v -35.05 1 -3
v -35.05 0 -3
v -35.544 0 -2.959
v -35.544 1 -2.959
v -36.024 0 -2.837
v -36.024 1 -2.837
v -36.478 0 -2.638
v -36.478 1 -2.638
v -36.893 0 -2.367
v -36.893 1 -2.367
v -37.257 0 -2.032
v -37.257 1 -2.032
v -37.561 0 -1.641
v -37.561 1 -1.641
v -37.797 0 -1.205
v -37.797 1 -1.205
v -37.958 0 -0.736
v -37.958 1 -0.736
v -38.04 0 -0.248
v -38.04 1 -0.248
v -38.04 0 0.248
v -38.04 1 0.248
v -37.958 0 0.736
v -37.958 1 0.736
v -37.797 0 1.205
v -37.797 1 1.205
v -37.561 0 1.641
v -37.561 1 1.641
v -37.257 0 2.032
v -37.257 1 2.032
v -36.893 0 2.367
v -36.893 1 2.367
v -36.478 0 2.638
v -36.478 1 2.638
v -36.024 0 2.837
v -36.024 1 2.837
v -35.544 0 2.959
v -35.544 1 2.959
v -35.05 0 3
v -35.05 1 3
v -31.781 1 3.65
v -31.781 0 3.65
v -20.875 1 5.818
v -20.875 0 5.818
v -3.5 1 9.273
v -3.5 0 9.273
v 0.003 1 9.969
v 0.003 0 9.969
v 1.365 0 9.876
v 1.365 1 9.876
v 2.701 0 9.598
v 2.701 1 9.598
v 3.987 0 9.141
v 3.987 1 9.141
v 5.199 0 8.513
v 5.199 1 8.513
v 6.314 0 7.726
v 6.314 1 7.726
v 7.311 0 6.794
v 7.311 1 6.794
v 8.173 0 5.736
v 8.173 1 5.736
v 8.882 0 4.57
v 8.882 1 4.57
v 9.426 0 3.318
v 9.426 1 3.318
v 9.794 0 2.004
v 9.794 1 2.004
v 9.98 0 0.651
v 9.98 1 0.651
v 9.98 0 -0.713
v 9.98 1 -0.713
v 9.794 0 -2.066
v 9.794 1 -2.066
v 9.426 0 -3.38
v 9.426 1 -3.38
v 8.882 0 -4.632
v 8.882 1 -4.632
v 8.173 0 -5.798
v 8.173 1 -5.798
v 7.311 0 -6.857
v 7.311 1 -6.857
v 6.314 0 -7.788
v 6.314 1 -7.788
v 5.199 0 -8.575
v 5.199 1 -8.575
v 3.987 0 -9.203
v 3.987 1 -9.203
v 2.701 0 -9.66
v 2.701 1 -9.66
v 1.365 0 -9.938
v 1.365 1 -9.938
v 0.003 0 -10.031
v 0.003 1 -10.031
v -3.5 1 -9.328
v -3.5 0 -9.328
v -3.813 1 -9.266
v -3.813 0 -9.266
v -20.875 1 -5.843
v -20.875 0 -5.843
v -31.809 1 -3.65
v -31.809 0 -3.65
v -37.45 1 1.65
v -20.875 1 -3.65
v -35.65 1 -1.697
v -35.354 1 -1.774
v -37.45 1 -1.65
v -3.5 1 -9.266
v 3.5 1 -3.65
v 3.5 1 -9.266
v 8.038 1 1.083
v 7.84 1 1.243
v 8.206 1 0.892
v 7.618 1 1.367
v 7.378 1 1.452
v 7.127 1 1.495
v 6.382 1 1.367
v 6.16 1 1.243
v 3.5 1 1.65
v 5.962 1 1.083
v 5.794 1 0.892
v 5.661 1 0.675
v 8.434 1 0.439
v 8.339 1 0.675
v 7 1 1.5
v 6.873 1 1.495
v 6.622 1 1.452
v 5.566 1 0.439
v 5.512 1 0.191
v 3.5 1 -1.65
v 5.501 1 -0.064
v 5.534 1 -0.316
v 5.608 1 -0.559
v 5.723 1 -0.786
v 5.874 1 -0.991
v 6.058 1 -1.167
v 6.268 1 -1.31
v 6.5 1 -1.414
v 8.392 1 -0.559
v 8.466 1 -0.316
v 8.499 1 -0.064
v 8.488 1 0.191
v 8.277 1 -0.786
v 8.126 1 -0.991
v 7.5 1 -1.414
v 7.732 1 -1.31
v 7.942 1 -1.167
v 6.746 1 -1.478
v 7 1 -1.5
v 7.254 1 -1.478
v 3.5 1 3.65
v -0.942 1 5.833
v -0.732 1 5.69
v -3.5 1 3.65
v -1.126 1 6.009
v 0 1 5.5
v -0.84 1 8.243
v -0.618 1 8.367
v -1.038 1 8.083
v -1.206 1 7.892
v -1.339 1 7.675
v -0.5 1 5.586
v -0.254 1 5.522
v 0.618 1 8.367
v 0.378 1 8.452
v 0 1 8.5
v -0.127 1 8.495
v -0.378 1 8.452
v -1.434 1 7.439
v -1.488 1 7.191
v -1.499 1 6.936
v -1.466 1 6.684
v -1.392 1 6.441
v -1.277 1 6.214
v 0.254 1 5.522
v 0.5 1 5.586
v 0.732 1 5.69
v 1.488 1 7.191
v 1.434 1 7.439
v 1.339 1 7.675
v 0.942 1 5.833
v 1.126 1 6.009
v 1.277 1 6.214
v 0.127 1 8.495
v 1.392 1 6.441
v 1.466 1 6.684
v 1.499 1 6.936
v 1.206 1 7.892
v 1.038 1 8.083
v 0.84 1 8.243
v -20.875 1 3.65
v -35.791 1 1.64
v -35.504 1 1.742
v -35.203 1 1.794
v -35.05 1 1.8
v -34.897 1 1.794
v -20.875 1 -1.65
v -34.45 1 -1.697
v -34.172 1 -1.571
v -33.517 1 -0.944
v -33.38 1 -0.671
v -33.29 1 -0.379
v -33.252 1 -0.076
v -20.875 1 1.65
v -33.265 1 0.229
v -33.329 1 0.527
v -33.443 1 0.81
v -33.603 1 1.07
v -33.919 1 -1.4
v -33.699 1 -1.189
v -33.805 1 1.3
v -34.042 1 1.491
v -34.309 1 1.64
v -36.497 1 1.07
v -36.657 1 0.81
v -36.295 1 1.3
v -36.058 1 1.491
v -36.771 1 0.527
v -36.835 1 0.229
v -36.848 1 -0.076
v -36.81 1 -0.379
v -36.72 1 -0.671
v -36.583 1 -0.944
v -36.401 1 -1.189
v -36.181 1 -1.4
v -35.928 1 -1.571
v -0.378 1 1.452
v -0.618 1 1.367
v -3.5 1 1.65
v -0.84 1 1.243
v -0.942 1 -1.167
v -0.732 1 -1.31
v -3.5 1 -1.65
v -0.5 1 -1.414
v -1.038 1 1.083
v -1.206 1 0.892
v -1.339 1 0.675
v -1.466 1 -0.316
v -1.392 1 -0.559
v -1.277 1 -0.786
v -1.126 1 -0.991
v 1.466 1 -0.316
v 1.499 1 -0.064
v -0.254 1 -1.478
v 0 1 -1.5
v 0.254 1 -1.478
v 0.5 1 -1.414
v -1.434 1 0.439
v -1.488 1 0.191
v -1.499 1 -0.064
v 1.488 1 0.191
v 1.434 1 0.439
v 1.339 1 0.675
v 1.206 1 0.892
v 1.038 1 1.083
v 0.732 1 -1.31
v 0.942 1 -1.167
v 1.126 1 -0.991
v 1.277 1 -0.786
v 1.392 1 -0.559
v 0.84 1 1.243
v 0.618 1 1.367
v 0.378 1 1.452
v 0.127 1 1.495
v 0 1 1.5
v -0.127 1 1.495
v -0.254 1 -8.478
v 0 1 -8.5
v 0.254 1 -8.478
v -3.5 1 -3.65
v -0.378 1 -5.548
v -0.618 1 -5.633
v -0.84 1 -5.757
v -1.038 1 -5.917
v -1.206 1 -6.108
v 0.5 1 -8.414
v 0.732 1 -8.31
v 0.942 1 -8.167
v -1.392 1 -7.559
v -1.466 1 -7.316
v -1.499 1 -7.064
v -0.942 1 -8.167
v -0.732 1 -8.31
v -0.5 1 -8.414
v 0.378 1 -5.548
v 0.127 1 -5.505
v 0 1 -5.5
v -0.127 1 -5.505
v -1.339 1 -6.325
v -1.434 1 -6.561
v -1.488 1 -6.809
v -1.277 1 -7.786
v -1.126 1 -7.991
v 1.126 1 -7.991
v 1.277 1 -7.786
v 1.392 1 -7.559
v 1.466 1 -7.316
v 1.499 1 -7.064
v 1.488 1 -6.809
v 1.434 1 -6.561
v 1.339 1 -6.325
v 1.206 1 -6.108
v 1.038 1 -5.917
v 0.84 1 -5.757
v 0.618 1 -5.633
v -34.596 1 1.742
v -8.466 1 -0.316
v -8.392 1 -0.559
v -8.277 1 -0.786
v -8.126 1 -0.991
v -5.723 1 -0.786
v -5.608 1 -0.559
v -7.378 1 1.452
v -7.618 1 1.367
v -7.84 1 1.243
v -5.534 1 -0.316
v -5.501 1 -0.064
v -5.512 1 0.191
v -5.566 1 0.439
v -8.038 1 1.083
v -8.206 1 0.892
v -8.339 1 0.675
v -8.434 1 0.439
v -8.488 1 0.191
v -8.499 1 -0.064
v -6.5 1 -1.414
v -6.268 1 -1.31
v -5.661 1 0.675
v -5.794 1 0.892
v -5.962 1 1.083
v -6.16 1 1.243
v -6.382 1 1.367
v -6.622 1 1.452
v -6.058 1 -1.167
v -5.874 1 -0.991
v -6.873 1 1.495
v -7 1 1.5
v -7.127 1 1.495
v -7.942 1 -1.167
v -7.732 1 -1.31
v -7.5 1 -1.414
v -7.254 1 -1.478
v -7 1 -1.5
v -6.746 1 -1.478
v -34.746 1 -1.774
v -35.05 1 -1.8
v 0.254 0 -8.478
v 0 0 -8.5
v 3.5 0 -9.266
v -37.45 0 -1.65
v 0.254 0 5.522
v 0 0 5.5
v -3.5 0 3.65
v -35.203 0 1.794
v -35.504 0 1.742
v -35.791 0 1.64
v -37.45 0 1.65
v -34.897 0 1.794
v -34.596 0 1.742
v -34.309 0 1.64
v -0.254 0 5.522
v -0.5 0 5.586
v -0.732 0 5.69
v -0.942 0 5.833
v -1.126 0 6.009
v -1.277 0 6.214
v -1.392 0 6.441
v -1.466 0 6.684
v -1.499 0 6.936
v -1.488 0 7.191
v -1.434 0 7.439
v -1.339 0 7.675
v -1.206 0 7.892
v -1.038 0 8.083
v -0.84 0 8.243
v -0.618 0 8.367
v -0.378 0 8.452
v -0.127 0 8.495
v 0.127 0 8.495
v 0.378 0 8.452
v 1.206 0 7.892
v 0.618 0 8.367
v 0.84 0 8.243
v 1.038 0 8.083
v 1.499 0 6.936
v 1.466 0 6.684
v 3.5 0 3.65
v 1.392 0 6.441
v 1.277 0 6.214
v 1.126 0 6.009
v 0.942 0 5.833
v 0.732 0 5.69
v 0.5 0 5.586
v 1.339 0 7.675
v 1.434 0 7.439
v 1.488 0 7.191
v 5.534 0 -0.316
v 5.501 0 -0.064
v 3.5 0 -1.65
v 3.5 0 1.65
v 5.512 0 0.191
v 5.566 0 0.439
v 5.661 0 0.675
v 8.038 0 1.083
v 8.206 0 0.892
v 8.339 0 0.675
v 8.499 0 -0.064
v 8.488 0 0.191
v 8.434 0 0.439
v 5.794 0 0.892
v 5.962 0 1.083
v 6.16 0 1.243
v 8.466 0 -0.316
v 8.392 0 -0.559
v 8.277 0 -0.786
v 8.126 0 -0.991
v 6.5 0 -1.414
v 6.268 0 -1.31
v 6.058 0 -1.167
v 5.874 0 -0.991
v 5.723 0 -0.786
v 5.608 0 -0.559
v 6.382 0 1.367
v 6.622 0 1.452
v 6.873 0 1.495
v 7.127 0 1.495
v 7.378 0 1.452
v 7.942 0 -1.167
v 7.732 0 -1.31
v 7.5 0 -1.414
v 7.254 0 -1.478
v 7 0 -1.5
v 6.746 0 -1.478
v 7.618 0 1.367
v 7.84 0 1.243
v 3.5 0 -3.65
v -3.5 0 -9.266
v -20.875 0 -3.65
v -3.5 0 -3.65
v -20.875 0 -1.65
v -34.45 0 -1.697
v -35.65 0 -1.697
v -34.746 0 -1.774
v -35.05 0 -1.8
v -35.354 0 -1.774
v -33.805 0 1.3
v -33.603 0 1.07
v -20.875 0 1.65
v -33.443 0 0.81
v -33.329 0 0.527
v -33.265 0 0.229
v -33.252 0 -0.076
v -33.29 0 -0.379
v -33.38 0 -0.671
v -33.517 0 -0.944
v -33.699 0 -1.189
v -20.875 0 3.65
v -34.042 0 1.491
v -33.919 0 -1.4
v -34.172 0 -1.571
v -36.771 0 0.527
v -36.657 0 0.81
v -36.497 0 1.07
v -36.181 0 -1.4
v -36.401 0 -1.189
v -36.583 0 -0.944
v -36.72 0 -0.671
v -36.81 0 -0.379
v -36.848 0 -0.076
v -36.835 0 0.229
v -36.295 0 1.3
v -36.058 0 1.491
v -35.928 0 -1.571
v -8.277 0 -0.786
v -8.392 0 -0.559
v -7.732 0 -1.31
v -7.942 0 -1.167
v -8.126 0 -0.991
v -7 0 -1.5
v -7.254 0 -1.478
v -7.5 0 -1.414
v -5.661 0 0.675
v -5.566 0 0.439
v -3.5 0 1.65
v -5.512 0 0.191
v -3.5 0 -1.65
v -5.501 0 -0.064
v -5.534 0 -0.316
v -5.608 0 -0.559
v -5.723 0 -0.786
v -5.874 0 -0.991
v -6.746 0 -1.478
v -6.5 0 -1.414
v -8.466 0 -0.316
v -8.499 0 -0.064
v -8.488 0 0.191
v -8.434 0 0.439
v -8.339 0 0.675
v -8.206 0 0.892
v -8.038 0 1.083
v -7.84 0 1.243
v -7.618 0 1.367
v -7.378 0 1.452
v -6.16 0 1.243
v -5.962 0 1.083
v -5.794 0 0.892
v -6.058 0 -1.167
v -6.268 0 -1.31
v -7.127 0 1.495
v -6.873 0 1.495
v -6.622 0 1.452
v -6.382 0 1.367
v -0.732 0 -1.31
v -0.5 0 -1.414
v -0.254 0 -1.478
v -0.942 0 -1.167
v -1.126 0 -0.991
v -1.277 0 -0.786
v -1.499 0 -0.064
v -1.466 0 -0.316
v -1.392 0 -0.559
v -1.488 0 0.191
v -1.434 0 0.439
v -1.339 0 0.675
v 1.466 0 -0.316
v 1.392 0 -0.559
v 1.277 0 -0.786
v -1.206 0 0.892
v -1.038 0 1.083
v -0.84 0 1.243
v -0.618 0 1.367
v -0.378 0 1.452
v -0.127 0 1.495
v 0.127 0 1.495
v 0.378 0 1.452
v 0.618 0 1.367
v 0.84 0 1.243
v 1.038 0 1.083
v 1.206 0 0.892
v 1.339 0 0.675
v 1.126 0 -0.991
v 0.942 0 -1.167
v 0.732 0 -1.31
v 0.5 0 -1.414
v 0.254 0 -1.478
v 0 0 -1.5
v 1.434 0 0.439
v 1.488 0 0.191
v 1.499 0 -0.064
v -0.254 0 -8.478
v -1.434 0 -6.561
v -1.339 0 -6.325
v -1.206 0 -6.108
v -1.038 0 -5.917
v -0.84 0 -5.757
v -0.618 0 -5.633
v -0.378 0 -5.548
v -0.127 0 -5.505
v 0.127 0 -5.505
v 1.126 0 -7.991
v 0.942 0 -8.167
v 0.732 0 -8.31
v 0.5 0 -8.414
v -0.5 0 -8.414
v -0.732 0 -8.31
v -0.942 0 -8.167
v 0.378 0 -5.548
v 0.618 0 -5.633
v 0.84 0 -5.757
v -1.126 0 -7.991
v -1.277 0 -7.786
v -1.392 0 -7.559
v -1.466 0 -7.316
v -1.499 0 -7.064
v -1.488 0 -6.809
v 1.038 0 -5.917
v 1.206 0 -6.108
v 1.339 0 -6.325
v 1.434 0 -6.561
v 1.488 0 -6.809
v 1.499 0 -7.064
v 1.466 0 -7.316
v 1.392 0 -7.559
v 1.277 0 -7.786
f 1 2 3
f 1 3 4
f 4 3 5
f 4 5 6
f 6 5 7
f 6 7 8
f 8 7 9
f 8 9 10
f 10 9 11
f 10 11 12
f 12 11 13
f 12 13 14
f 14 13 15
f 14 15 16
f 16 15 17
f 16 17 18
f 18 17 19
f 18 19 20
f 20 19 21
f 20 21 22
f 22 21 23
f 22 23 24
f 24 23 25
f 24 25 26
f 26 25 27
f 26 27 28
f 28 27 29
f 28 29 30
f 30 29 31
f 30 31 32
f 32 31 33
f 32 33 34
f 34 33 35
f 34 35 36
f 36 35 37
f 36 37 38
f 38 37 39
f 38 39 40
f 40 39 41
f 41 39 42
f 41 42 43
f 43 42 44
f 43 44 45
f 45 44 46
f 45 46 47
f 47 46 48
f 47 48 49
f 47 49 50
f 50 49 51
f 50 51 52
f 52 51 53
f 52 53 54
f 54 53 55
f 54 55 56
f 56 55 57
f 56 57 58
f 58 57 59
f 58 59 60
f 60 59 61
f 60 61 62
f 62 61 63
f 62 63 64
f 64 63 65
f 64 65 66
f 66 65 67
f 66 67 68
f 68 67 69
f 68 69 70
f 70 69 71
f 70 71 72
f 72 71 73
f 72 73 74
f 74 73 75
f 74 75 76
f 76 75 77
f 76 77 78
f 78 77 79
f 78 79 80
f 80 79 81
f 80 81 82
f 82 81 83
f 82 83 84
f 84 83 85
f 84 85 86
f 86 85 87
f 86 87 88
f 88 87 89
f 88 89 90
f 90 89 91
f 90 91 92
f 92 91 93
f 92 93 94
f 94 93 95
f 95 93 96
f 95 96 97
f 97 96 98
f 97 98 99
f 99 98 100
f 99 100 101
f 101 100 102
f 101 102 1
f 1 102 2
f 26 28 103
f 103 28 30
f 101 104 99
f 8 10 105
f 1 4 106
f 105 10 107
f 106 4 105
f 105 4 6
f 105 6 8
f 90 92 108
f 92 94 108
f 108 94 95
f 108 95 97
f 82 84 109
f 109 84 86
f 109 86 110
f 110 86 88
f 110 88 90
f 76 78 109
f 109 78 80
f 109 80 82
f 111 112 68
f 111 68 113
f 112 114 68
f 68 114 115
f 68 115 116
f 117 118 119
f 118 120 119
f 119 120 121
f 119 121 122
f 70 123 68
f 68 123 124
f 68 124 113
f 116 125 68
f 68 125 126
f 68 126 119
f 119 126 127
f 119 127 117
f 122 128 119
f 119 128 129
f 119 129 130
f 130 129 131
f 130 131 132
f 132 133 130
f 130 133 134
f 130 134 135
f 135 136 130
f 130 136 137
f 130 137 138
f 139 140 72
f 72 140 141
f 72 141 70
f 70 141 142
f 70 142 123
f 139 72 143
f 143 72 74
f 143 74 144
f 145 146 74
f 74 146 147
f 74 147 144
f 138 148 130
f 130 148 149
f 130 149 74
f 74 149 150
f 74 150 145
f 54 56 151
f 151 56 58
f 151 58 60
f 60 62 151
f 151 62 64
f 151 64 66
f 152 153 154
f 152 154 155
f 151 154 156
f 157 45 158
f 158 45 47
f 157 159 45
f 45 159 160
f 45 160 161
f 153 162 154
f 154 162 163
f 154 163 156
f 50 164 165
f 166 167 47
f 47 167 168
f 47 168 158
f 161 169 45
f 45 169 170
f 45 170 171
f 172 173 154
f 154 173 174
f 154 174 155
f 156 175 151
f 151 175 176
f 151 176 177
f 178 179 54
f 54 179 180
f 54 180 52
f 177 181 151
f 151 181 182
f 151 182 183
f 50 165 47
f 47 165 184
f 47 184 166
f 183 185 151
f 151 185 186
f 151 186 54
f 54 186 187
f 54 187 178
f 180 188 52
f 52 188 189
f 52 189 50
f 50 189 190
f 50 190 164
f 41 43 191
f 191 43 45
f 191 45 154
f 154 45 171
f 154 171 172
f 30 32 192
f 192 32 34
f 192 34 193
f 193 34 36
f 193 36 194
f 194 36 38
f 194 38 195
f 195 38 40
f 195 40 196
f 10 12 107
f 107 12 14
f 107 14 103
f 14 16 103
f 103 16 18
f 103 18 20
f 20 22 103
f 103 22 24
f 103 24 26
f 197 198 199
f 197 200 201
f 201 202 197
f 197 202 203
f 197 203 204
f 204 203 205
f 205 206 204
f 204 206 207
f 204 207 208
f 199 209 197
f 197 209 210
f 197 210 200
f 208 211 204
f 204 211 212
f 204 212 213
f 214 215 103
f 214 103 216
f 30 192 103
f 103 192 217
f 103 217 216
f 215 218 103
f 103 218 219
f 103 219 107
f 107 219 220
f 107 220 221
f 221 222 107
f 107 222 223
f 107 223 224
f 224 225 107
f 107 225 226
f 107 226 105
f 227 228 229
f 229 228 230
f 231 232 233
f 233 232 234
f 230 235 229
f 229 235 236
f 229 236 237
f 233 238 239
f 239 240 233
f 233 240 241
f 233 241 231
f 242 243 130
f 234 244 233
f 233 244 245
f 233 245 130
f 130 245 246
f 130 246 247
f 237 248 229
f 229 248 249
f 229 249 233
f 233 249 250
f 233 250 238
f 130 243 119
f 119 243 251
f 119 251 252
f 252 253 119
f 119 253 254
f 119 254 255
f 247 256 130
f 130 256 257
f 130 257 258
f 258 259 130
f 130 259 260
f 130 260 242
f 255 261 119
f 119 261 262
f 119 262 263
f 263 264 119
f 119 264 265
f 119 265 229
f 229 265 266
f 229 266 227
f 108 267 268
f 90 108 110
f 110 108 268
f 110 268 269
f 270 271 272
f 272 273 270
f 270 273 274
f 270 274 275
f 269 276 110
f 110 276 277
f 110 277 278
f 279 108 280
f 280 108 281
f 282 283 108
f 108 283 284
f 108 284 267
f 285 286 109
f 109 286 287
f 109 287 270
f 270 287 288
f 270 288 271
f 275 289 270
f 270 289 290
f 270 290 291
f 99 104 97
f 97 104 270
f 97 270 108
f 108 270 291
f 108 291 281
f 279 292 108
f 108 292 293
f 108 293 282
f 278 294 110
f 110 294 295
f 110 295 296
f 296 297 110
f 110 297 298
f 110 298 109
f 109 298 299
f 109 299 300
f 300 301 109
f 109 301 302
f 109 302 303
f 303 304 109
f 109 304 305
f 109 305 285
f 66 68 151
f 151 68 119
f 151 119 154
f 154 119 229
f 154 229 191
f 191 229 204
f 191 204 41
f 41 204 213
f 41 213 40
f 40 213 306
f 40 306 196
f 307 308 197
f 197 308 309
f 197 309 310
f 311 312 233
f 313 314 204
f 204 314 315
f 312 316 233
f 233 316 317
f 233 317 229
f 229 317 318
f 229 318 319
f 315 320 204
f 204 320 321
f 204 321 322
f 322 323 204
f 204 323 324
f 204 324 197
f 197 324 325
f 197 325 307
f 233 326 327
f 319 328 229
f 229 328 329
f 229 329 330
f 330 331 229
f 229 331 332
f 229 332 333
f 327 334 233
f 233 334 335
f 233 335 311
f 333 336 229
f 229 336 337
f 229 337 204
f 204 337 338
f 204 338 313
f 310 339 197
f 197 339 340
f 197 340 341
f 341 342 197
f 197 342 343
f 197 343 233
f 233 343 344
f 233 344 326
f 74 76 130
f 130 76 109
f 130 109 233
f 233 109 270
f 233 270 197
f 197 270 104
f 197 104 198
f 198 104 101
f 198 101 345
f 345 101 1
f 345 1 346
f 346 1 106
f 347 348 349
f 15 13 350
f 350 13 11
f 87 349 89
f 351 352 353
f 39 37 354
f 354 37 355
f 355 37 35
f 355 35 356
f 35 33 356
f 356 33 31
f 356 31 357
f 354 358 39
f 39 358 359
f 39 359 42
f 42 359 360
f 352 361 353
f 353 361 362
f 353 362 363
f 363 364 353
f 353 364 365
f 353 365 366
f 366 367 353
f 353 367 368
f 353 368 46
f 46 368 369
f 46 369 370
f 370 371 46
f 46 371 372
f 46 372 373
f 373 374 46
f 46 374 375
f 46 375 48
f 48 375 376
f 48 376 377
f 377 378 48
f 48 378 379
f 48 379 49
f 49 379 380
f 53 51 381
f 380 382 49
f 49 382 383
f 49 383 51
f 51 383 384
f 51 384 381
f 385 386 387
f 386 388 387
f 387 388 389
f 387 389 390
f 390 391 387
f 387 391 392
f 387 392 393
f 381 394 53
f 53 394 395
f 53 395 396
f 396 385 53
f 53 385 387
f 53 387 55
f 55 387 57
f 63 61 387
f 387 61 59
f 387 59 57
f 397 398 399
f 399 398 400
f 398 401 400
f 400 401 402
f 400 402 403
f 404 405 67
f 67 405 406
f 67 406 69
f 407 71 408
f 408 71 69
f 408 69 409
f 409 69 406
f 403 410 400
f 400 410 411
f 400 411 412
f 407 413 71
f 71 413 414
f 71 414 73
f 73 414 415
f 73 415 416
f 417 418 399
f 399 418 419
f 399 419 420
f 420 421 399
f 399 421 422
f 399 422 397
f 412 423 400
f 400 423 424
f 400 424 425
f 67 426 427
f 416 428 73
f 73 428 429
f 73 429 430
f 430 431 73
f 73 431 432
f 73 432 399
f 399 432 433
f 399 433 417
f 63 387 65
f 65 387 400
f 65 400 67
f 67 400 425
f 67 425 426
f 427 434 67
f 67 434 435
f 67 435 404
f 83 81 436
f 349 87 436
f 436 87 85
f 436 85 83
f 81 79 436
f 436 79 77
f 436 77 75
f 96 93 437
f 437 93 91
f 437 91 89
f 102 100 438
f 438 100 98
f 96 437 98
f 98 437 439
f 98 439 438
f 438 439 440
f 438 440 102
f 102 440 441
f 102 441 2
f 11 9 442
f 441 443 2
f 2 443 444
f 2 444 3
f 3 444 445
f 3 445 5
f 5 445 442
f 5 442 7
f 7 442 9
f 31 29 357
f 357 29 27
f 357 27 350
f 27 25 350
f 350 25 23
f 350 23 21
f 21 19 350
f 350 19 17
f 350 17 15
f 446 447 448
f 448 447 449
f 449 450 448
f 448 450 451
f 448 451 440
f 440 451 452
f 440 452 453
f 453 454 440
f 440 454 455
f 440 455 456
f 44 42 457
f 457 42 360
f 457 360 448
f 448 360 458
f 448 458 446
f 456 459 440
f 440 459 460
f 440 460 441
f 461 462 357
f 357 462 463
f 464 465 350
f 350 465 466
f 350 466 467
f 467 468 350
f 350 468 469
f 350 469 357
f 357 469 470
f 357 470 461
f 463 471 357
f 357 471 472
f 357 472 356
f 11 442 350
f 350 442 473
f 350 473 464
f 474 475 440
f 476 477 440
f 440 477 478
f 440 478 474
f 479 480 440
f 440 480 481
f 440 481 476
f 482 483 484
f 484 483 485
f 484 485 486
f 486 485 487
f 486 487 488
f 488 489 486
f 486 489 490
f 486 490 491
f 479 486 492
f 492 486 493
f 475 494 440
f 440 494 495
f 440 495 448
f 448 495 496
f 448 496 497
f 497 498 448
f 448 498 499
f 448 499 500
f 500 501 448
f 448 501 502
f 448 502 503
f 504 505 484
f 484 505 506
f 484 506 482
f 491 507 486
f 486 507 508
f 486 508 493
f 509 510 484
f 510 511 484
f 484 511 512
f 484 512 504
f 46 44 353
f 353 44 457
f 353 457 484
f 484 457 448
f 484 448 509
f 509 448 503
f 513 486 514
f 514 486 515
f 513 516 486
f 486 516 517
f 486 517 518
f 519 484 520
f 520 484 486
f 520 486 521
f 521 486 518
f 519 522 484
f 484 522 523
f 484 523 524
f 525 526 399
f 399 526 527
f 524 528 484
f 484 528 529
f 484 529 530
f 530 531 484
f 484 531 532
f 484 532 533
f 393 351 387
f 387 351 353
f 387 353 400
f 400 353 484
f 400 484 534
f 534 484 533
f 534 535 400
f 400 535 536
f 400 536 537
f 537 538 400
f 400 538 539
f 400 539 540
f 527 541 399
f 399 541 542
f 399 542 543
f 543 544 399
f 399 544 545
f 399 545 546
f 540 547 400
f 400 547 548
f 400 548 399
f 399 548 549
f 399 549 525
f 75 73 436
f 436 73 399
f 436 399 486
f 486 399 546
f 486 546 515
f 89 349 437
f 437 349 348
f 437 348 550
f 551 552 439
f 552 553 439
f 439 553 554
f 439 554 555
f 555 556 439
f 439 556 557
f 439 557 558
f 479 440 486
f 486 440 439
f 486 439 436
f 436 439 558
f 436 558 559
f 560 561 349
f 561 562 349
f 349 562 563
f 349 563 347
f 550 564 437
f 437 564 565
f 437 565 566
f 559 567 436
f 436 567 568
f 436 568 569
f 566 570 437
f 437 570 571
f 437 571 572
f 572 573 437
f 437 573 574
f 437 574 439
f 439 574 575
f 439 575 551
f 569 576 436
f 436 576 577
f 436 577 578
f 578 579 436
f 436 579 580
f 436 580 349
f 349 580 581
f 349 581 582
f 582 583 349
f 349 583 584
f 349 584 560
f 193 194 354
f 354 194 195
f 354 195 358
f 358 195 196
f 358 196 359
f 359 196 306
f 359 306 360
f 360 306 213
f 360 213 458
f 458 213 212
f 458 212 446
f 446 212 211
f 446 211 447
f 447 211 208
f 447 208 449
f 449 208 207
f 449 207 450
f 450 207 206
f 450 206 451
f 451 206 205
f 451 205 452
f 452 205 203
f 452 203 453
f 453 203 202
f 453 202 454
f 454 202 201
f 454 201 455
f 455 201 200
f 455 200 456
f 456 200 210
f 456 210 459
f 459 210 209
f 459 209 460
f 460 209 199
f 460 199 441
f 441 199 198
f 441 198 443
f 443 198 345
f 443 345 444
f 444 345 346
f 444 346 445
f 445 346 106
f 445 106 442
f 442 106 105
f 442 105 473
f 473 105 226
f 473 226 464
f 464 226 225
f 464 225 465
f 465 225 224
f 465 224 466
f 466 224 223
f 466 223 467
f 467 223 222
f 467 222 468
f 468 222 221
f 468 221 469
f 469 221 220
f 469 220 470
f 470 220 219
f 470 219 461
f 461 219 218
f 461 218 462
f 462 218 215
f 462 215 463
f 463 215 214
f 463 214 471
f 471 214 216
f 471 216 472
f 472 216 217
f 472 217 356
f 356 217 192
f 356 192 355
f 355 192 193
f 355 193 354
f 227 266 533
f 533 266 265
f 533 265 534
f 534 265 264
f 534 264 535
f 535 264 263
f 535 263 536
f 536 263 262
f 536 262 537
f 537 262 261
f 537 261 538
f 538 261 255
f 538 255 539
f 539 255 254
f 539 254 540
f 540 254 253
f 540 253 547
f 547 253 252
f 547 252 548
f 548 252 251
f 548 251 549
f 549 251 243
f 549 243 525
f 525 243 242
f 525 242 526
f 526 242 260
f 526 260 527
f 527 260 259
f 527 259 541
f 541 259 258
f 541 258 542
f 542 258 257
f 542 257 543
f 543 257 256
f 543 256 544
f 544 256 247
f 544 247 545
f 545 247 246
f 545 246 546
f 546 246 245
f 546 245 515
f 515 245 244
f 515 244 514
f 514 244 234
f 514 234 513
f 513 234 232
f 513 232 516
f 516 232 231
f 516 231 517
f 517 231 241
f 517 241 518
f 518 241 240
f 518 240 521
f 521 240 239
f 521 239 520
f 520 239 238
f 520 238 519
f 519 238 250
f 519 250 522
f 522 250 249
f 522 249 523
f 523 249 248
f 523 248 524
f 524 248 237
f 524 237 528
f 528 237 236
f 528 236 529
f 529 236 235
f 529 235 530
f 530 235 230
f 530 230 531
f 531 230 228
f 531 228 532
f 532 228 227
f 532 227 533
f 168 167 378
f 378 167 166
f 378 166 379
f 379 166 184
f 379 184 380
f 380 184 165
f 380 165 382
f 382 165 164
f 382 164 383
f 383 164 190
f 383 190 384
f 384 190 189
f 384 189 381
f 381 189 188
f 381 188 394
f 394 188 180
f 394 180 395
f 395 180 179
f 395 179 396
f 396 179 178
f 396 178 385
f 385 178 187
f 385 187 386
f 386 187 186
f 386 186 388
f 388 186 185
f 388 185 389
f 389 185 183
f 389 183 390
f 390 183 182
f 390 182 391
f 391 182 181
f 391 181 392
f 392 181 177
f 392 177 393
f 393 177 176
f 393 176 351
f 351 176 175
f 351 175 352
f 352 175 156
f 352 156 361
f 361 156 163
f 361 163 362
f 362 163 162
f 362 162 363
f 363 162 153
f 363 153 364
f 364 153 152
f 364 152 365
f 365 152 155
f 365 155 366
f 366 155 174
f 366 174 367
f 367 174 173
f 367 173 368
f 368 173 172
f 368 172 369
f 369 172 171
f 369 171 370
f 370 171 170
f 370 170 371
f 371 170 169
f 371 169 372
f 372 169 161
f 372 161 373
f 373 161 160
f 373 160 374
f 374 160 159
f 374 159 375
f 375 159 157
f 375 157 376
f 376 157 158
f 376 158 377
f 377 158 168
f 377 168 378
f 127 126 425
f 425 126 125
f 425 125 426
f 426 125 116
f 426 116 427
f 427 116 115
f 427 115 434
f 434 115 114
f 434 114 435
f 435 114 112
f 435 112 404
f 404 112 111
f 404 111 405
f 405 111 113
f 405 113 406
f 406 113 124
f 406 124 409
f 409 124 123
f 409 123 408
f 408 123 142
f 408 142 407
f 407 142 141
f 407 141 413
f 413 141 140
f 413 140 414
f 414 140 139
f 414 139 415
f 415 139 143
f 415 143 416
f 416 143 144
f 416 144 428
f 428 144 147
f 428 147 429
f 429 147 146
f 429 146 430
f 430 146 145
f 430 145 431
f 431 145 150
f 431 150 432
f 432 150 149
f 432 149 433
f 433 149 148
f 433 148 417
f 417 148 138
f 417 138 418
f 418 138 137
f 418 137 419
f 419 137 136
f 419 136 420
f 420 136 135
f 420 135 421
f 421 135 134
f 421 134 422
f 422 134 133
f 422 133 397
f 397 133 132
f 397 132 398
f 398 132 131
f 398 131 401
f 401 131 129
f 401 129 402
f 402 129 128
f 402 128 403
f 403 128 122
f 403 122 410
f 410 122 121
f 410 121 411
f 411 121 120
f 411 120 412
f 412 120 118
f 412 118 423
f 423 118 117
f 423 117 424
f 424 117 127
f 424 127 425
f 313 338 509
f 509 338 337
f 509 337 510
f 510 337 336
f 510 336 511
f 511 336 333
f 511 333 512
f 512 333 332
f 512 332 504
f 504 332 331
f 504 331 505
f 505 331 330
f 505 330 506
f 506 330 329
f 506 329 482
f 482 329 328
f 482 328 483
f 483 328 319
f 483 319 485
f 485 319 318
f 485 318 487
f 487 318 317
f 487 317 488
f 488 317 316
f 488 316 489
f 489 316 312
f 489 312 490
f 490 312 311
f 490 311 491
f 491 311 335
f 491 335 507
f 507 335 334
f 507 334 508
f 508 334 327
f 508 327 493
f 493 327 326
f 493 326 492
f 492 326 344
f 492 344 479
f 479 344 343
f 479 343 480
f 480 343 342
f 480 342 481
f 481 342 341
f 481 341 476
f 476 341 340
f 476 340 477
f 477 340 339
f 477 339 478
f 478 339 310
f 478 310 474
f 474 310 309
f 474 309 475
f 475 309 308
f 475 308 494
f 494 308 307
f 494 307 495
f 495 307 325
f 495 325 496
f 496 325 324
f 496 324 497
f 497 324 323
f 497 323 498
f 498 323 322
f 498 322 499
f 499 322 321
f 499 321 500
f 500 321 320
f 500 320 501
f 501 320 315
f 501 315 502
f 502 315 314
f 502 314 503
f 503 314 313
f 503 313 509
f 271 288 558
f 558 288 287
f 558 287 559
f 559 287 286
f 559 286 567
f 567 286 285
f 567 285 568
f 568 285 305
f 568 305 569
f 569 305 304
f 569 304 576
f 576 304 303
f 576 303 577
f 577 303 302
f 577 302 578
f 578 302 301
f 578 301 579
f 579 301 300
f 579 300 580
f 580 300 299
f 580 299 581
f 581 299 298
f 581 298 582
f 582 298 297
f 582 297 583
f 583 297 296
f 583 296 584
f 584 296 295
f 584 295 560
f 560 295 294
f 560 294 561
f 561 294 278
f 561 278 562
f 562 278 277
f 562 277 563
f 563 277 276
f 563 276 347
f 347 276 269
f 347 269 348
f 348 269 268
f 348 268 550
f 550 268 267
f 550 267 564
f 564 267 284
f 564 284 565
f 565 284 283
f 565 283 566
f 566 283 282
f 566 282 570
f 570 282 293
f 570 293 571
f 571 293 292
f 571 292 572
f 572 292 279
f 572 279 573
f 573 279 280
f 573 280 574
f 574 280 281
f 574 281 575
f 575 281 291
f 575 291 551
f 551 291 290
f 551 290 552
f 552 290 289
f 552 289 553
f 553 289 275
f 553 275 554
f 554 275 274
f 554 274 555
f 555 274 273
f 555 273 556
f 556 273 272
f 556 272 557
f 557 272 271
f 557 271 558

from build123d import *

# Parameters (mm, degrees)
BOSS_EXTRUDE1_DEPTH = 1
SKETCH5_R           = 1.5
SKETCH5_R_2         = 1.8
CUT_EXTRUDE4_DEPTH  = 11


with BuildPart() as part:
    # Sketch1 → Boss-Extrude1 (new body)
    with BuildSketch(Plane(origin=(0, 0, 0), x_dir=(1, 0, 0), z_dir=(0, 1, 0))):
        with BuildLine():
            Line((0.003114812, 10.031035213), (0.003114812, 0.031035213))
            Line((0.003114812, 0.031035213), (0.003114812, -9.968964787))
            ThreePointArc((0.003114812, -9.968964787), (7.074182624, -7.040032599), (10.003114812, 0.031035213))
            ThreePointArc((10.003114812, 0.031035213), (7.074182624, 7.102103025), (0.003114812, 10.031035213))
        make_face()
        with BuildLine():
            Line((-32.050001176, 0.002656129), (-9.996881269, 0.022181449))
            ThreePointArc((-9.996881269, 0.022181449), (-8.322945106, 5.569692653), (-3.853372565, 9.257492015))
            Line((-3.853372565, 9.257492015), (-35.05, 3))
            ThreePointArc((-35.05, 3), (-32.929618948, 2.122259219), (-32.050001176, 0.002656129))
        make_face()
        with BuildLine():
            Line((-9.996881269, 0.022181449), (0.003114812, 0.031035213))
            Line((0.003114812, 0.031035213), (0.003114812, 10.031035213))
            Line((0.003114812, 10.031035213), (-3.853372565, 9.257492015))
            ThreePointArc((-3.853372565, 9.257492015), (-8.322945106, 5.569692653), (-9.996881269, 0.022181449))
        make_face()
        with BuildLine():
            Line((0.003114812, -9.968964787), (0.003114812, 0.031035213))
            Line((0.003114812, 0.031035213), (-9.996881269, 0.022181449))
            ThreePointArc((-9.996881269, 0.022181449), (-8.308581959, -5.529153344), (-3.821927798, -9.20850206))
            Line((-3.821927798, -9.20850206), (0.003114812, -9.968964787))
        make_face()
        with BuildLine():
            ThreePointArc((-3.821927798, -9.20850206), (-8.308581959, -5.529153344), (-9.996881269, 0.022181449))
            Line((-9.996881269, 0.022181449), (-32.050001176, 0.002656129))
            ThreePointArc((-32.050001176, 0.002656129), (-32.050000294, 0.001328065), (-32.05, 0))
            ThreePointArc((-32.05, 0), (-32.928679656, -2.121320344), (-35.05, -3))
            Line((-35.05, -3), (-3.821927798, -9.20850206))
        make_face()
        with BuildLine():
            ThreePointArc((-32.05, 0), (-32.050000294, 0.001328065), (-32.050001176, 0.002656129))
            Line((-32.050001176, 0.002656129), (-35.05, 0))
            Line((-35.05, 0), (-35.05, -3))
            ThreePointArc((-35.05, -3), (-32.928679656, -2.121320344), (-32.05, 0))
        make_face()
        with BuildLine():
            Line((-35.05, 0), (-32.050001176, 0.002656129))
            ThreePointArc((-32.050001176, 0.002656129), (-32.929618948, 2.122259219), (-35.05, 3))
            Line((-35.05, 3), (-35.05, 0))
        make_face()
        with BuildLine():
            Line((-35.05, 0), (-35.05, 3))
            ThreePointArc((-35.05, 3), (-38.05, 0), (-35.05, -3))
            Line((-35.05, -3), (-35.05, 0))
        make_face()
    extrude(amount=BOSS_EXTRUDE1_DEPTH)

    # Sketch5 → Cut-Extrude4 (cut)
    with BuildSketch(Plane.XZ):
        with Locations(Location((0, 0, 0), (0, 0, 270))):
            Circle(SKETCH5_R)
        with Locations(Location((0, 7, 0), (0, 0, 270))):
            Circle(SKETCH5_R)
        with Locations(Location((-35.05, 0, 0), (0, 0, 270))):
            Circle(SKETCH5_R_2)
        with Locations(Location((-7, 0, 0), (0, 0, 270))):
            Circle(SKETCH5_R)
        with Locations(Location((7, 0, 0), (0, 0, 270))):
            Circle(SKETCH5_R)
        with Locations(Location((0, -7, 0), (0, 0, 270))):
            Circle(SKETCH5_R)
    extrude(amount=-CUT_EXTRUDE4_DEPTH, mode=Mode.SUBTRACT)


solid = part.part
